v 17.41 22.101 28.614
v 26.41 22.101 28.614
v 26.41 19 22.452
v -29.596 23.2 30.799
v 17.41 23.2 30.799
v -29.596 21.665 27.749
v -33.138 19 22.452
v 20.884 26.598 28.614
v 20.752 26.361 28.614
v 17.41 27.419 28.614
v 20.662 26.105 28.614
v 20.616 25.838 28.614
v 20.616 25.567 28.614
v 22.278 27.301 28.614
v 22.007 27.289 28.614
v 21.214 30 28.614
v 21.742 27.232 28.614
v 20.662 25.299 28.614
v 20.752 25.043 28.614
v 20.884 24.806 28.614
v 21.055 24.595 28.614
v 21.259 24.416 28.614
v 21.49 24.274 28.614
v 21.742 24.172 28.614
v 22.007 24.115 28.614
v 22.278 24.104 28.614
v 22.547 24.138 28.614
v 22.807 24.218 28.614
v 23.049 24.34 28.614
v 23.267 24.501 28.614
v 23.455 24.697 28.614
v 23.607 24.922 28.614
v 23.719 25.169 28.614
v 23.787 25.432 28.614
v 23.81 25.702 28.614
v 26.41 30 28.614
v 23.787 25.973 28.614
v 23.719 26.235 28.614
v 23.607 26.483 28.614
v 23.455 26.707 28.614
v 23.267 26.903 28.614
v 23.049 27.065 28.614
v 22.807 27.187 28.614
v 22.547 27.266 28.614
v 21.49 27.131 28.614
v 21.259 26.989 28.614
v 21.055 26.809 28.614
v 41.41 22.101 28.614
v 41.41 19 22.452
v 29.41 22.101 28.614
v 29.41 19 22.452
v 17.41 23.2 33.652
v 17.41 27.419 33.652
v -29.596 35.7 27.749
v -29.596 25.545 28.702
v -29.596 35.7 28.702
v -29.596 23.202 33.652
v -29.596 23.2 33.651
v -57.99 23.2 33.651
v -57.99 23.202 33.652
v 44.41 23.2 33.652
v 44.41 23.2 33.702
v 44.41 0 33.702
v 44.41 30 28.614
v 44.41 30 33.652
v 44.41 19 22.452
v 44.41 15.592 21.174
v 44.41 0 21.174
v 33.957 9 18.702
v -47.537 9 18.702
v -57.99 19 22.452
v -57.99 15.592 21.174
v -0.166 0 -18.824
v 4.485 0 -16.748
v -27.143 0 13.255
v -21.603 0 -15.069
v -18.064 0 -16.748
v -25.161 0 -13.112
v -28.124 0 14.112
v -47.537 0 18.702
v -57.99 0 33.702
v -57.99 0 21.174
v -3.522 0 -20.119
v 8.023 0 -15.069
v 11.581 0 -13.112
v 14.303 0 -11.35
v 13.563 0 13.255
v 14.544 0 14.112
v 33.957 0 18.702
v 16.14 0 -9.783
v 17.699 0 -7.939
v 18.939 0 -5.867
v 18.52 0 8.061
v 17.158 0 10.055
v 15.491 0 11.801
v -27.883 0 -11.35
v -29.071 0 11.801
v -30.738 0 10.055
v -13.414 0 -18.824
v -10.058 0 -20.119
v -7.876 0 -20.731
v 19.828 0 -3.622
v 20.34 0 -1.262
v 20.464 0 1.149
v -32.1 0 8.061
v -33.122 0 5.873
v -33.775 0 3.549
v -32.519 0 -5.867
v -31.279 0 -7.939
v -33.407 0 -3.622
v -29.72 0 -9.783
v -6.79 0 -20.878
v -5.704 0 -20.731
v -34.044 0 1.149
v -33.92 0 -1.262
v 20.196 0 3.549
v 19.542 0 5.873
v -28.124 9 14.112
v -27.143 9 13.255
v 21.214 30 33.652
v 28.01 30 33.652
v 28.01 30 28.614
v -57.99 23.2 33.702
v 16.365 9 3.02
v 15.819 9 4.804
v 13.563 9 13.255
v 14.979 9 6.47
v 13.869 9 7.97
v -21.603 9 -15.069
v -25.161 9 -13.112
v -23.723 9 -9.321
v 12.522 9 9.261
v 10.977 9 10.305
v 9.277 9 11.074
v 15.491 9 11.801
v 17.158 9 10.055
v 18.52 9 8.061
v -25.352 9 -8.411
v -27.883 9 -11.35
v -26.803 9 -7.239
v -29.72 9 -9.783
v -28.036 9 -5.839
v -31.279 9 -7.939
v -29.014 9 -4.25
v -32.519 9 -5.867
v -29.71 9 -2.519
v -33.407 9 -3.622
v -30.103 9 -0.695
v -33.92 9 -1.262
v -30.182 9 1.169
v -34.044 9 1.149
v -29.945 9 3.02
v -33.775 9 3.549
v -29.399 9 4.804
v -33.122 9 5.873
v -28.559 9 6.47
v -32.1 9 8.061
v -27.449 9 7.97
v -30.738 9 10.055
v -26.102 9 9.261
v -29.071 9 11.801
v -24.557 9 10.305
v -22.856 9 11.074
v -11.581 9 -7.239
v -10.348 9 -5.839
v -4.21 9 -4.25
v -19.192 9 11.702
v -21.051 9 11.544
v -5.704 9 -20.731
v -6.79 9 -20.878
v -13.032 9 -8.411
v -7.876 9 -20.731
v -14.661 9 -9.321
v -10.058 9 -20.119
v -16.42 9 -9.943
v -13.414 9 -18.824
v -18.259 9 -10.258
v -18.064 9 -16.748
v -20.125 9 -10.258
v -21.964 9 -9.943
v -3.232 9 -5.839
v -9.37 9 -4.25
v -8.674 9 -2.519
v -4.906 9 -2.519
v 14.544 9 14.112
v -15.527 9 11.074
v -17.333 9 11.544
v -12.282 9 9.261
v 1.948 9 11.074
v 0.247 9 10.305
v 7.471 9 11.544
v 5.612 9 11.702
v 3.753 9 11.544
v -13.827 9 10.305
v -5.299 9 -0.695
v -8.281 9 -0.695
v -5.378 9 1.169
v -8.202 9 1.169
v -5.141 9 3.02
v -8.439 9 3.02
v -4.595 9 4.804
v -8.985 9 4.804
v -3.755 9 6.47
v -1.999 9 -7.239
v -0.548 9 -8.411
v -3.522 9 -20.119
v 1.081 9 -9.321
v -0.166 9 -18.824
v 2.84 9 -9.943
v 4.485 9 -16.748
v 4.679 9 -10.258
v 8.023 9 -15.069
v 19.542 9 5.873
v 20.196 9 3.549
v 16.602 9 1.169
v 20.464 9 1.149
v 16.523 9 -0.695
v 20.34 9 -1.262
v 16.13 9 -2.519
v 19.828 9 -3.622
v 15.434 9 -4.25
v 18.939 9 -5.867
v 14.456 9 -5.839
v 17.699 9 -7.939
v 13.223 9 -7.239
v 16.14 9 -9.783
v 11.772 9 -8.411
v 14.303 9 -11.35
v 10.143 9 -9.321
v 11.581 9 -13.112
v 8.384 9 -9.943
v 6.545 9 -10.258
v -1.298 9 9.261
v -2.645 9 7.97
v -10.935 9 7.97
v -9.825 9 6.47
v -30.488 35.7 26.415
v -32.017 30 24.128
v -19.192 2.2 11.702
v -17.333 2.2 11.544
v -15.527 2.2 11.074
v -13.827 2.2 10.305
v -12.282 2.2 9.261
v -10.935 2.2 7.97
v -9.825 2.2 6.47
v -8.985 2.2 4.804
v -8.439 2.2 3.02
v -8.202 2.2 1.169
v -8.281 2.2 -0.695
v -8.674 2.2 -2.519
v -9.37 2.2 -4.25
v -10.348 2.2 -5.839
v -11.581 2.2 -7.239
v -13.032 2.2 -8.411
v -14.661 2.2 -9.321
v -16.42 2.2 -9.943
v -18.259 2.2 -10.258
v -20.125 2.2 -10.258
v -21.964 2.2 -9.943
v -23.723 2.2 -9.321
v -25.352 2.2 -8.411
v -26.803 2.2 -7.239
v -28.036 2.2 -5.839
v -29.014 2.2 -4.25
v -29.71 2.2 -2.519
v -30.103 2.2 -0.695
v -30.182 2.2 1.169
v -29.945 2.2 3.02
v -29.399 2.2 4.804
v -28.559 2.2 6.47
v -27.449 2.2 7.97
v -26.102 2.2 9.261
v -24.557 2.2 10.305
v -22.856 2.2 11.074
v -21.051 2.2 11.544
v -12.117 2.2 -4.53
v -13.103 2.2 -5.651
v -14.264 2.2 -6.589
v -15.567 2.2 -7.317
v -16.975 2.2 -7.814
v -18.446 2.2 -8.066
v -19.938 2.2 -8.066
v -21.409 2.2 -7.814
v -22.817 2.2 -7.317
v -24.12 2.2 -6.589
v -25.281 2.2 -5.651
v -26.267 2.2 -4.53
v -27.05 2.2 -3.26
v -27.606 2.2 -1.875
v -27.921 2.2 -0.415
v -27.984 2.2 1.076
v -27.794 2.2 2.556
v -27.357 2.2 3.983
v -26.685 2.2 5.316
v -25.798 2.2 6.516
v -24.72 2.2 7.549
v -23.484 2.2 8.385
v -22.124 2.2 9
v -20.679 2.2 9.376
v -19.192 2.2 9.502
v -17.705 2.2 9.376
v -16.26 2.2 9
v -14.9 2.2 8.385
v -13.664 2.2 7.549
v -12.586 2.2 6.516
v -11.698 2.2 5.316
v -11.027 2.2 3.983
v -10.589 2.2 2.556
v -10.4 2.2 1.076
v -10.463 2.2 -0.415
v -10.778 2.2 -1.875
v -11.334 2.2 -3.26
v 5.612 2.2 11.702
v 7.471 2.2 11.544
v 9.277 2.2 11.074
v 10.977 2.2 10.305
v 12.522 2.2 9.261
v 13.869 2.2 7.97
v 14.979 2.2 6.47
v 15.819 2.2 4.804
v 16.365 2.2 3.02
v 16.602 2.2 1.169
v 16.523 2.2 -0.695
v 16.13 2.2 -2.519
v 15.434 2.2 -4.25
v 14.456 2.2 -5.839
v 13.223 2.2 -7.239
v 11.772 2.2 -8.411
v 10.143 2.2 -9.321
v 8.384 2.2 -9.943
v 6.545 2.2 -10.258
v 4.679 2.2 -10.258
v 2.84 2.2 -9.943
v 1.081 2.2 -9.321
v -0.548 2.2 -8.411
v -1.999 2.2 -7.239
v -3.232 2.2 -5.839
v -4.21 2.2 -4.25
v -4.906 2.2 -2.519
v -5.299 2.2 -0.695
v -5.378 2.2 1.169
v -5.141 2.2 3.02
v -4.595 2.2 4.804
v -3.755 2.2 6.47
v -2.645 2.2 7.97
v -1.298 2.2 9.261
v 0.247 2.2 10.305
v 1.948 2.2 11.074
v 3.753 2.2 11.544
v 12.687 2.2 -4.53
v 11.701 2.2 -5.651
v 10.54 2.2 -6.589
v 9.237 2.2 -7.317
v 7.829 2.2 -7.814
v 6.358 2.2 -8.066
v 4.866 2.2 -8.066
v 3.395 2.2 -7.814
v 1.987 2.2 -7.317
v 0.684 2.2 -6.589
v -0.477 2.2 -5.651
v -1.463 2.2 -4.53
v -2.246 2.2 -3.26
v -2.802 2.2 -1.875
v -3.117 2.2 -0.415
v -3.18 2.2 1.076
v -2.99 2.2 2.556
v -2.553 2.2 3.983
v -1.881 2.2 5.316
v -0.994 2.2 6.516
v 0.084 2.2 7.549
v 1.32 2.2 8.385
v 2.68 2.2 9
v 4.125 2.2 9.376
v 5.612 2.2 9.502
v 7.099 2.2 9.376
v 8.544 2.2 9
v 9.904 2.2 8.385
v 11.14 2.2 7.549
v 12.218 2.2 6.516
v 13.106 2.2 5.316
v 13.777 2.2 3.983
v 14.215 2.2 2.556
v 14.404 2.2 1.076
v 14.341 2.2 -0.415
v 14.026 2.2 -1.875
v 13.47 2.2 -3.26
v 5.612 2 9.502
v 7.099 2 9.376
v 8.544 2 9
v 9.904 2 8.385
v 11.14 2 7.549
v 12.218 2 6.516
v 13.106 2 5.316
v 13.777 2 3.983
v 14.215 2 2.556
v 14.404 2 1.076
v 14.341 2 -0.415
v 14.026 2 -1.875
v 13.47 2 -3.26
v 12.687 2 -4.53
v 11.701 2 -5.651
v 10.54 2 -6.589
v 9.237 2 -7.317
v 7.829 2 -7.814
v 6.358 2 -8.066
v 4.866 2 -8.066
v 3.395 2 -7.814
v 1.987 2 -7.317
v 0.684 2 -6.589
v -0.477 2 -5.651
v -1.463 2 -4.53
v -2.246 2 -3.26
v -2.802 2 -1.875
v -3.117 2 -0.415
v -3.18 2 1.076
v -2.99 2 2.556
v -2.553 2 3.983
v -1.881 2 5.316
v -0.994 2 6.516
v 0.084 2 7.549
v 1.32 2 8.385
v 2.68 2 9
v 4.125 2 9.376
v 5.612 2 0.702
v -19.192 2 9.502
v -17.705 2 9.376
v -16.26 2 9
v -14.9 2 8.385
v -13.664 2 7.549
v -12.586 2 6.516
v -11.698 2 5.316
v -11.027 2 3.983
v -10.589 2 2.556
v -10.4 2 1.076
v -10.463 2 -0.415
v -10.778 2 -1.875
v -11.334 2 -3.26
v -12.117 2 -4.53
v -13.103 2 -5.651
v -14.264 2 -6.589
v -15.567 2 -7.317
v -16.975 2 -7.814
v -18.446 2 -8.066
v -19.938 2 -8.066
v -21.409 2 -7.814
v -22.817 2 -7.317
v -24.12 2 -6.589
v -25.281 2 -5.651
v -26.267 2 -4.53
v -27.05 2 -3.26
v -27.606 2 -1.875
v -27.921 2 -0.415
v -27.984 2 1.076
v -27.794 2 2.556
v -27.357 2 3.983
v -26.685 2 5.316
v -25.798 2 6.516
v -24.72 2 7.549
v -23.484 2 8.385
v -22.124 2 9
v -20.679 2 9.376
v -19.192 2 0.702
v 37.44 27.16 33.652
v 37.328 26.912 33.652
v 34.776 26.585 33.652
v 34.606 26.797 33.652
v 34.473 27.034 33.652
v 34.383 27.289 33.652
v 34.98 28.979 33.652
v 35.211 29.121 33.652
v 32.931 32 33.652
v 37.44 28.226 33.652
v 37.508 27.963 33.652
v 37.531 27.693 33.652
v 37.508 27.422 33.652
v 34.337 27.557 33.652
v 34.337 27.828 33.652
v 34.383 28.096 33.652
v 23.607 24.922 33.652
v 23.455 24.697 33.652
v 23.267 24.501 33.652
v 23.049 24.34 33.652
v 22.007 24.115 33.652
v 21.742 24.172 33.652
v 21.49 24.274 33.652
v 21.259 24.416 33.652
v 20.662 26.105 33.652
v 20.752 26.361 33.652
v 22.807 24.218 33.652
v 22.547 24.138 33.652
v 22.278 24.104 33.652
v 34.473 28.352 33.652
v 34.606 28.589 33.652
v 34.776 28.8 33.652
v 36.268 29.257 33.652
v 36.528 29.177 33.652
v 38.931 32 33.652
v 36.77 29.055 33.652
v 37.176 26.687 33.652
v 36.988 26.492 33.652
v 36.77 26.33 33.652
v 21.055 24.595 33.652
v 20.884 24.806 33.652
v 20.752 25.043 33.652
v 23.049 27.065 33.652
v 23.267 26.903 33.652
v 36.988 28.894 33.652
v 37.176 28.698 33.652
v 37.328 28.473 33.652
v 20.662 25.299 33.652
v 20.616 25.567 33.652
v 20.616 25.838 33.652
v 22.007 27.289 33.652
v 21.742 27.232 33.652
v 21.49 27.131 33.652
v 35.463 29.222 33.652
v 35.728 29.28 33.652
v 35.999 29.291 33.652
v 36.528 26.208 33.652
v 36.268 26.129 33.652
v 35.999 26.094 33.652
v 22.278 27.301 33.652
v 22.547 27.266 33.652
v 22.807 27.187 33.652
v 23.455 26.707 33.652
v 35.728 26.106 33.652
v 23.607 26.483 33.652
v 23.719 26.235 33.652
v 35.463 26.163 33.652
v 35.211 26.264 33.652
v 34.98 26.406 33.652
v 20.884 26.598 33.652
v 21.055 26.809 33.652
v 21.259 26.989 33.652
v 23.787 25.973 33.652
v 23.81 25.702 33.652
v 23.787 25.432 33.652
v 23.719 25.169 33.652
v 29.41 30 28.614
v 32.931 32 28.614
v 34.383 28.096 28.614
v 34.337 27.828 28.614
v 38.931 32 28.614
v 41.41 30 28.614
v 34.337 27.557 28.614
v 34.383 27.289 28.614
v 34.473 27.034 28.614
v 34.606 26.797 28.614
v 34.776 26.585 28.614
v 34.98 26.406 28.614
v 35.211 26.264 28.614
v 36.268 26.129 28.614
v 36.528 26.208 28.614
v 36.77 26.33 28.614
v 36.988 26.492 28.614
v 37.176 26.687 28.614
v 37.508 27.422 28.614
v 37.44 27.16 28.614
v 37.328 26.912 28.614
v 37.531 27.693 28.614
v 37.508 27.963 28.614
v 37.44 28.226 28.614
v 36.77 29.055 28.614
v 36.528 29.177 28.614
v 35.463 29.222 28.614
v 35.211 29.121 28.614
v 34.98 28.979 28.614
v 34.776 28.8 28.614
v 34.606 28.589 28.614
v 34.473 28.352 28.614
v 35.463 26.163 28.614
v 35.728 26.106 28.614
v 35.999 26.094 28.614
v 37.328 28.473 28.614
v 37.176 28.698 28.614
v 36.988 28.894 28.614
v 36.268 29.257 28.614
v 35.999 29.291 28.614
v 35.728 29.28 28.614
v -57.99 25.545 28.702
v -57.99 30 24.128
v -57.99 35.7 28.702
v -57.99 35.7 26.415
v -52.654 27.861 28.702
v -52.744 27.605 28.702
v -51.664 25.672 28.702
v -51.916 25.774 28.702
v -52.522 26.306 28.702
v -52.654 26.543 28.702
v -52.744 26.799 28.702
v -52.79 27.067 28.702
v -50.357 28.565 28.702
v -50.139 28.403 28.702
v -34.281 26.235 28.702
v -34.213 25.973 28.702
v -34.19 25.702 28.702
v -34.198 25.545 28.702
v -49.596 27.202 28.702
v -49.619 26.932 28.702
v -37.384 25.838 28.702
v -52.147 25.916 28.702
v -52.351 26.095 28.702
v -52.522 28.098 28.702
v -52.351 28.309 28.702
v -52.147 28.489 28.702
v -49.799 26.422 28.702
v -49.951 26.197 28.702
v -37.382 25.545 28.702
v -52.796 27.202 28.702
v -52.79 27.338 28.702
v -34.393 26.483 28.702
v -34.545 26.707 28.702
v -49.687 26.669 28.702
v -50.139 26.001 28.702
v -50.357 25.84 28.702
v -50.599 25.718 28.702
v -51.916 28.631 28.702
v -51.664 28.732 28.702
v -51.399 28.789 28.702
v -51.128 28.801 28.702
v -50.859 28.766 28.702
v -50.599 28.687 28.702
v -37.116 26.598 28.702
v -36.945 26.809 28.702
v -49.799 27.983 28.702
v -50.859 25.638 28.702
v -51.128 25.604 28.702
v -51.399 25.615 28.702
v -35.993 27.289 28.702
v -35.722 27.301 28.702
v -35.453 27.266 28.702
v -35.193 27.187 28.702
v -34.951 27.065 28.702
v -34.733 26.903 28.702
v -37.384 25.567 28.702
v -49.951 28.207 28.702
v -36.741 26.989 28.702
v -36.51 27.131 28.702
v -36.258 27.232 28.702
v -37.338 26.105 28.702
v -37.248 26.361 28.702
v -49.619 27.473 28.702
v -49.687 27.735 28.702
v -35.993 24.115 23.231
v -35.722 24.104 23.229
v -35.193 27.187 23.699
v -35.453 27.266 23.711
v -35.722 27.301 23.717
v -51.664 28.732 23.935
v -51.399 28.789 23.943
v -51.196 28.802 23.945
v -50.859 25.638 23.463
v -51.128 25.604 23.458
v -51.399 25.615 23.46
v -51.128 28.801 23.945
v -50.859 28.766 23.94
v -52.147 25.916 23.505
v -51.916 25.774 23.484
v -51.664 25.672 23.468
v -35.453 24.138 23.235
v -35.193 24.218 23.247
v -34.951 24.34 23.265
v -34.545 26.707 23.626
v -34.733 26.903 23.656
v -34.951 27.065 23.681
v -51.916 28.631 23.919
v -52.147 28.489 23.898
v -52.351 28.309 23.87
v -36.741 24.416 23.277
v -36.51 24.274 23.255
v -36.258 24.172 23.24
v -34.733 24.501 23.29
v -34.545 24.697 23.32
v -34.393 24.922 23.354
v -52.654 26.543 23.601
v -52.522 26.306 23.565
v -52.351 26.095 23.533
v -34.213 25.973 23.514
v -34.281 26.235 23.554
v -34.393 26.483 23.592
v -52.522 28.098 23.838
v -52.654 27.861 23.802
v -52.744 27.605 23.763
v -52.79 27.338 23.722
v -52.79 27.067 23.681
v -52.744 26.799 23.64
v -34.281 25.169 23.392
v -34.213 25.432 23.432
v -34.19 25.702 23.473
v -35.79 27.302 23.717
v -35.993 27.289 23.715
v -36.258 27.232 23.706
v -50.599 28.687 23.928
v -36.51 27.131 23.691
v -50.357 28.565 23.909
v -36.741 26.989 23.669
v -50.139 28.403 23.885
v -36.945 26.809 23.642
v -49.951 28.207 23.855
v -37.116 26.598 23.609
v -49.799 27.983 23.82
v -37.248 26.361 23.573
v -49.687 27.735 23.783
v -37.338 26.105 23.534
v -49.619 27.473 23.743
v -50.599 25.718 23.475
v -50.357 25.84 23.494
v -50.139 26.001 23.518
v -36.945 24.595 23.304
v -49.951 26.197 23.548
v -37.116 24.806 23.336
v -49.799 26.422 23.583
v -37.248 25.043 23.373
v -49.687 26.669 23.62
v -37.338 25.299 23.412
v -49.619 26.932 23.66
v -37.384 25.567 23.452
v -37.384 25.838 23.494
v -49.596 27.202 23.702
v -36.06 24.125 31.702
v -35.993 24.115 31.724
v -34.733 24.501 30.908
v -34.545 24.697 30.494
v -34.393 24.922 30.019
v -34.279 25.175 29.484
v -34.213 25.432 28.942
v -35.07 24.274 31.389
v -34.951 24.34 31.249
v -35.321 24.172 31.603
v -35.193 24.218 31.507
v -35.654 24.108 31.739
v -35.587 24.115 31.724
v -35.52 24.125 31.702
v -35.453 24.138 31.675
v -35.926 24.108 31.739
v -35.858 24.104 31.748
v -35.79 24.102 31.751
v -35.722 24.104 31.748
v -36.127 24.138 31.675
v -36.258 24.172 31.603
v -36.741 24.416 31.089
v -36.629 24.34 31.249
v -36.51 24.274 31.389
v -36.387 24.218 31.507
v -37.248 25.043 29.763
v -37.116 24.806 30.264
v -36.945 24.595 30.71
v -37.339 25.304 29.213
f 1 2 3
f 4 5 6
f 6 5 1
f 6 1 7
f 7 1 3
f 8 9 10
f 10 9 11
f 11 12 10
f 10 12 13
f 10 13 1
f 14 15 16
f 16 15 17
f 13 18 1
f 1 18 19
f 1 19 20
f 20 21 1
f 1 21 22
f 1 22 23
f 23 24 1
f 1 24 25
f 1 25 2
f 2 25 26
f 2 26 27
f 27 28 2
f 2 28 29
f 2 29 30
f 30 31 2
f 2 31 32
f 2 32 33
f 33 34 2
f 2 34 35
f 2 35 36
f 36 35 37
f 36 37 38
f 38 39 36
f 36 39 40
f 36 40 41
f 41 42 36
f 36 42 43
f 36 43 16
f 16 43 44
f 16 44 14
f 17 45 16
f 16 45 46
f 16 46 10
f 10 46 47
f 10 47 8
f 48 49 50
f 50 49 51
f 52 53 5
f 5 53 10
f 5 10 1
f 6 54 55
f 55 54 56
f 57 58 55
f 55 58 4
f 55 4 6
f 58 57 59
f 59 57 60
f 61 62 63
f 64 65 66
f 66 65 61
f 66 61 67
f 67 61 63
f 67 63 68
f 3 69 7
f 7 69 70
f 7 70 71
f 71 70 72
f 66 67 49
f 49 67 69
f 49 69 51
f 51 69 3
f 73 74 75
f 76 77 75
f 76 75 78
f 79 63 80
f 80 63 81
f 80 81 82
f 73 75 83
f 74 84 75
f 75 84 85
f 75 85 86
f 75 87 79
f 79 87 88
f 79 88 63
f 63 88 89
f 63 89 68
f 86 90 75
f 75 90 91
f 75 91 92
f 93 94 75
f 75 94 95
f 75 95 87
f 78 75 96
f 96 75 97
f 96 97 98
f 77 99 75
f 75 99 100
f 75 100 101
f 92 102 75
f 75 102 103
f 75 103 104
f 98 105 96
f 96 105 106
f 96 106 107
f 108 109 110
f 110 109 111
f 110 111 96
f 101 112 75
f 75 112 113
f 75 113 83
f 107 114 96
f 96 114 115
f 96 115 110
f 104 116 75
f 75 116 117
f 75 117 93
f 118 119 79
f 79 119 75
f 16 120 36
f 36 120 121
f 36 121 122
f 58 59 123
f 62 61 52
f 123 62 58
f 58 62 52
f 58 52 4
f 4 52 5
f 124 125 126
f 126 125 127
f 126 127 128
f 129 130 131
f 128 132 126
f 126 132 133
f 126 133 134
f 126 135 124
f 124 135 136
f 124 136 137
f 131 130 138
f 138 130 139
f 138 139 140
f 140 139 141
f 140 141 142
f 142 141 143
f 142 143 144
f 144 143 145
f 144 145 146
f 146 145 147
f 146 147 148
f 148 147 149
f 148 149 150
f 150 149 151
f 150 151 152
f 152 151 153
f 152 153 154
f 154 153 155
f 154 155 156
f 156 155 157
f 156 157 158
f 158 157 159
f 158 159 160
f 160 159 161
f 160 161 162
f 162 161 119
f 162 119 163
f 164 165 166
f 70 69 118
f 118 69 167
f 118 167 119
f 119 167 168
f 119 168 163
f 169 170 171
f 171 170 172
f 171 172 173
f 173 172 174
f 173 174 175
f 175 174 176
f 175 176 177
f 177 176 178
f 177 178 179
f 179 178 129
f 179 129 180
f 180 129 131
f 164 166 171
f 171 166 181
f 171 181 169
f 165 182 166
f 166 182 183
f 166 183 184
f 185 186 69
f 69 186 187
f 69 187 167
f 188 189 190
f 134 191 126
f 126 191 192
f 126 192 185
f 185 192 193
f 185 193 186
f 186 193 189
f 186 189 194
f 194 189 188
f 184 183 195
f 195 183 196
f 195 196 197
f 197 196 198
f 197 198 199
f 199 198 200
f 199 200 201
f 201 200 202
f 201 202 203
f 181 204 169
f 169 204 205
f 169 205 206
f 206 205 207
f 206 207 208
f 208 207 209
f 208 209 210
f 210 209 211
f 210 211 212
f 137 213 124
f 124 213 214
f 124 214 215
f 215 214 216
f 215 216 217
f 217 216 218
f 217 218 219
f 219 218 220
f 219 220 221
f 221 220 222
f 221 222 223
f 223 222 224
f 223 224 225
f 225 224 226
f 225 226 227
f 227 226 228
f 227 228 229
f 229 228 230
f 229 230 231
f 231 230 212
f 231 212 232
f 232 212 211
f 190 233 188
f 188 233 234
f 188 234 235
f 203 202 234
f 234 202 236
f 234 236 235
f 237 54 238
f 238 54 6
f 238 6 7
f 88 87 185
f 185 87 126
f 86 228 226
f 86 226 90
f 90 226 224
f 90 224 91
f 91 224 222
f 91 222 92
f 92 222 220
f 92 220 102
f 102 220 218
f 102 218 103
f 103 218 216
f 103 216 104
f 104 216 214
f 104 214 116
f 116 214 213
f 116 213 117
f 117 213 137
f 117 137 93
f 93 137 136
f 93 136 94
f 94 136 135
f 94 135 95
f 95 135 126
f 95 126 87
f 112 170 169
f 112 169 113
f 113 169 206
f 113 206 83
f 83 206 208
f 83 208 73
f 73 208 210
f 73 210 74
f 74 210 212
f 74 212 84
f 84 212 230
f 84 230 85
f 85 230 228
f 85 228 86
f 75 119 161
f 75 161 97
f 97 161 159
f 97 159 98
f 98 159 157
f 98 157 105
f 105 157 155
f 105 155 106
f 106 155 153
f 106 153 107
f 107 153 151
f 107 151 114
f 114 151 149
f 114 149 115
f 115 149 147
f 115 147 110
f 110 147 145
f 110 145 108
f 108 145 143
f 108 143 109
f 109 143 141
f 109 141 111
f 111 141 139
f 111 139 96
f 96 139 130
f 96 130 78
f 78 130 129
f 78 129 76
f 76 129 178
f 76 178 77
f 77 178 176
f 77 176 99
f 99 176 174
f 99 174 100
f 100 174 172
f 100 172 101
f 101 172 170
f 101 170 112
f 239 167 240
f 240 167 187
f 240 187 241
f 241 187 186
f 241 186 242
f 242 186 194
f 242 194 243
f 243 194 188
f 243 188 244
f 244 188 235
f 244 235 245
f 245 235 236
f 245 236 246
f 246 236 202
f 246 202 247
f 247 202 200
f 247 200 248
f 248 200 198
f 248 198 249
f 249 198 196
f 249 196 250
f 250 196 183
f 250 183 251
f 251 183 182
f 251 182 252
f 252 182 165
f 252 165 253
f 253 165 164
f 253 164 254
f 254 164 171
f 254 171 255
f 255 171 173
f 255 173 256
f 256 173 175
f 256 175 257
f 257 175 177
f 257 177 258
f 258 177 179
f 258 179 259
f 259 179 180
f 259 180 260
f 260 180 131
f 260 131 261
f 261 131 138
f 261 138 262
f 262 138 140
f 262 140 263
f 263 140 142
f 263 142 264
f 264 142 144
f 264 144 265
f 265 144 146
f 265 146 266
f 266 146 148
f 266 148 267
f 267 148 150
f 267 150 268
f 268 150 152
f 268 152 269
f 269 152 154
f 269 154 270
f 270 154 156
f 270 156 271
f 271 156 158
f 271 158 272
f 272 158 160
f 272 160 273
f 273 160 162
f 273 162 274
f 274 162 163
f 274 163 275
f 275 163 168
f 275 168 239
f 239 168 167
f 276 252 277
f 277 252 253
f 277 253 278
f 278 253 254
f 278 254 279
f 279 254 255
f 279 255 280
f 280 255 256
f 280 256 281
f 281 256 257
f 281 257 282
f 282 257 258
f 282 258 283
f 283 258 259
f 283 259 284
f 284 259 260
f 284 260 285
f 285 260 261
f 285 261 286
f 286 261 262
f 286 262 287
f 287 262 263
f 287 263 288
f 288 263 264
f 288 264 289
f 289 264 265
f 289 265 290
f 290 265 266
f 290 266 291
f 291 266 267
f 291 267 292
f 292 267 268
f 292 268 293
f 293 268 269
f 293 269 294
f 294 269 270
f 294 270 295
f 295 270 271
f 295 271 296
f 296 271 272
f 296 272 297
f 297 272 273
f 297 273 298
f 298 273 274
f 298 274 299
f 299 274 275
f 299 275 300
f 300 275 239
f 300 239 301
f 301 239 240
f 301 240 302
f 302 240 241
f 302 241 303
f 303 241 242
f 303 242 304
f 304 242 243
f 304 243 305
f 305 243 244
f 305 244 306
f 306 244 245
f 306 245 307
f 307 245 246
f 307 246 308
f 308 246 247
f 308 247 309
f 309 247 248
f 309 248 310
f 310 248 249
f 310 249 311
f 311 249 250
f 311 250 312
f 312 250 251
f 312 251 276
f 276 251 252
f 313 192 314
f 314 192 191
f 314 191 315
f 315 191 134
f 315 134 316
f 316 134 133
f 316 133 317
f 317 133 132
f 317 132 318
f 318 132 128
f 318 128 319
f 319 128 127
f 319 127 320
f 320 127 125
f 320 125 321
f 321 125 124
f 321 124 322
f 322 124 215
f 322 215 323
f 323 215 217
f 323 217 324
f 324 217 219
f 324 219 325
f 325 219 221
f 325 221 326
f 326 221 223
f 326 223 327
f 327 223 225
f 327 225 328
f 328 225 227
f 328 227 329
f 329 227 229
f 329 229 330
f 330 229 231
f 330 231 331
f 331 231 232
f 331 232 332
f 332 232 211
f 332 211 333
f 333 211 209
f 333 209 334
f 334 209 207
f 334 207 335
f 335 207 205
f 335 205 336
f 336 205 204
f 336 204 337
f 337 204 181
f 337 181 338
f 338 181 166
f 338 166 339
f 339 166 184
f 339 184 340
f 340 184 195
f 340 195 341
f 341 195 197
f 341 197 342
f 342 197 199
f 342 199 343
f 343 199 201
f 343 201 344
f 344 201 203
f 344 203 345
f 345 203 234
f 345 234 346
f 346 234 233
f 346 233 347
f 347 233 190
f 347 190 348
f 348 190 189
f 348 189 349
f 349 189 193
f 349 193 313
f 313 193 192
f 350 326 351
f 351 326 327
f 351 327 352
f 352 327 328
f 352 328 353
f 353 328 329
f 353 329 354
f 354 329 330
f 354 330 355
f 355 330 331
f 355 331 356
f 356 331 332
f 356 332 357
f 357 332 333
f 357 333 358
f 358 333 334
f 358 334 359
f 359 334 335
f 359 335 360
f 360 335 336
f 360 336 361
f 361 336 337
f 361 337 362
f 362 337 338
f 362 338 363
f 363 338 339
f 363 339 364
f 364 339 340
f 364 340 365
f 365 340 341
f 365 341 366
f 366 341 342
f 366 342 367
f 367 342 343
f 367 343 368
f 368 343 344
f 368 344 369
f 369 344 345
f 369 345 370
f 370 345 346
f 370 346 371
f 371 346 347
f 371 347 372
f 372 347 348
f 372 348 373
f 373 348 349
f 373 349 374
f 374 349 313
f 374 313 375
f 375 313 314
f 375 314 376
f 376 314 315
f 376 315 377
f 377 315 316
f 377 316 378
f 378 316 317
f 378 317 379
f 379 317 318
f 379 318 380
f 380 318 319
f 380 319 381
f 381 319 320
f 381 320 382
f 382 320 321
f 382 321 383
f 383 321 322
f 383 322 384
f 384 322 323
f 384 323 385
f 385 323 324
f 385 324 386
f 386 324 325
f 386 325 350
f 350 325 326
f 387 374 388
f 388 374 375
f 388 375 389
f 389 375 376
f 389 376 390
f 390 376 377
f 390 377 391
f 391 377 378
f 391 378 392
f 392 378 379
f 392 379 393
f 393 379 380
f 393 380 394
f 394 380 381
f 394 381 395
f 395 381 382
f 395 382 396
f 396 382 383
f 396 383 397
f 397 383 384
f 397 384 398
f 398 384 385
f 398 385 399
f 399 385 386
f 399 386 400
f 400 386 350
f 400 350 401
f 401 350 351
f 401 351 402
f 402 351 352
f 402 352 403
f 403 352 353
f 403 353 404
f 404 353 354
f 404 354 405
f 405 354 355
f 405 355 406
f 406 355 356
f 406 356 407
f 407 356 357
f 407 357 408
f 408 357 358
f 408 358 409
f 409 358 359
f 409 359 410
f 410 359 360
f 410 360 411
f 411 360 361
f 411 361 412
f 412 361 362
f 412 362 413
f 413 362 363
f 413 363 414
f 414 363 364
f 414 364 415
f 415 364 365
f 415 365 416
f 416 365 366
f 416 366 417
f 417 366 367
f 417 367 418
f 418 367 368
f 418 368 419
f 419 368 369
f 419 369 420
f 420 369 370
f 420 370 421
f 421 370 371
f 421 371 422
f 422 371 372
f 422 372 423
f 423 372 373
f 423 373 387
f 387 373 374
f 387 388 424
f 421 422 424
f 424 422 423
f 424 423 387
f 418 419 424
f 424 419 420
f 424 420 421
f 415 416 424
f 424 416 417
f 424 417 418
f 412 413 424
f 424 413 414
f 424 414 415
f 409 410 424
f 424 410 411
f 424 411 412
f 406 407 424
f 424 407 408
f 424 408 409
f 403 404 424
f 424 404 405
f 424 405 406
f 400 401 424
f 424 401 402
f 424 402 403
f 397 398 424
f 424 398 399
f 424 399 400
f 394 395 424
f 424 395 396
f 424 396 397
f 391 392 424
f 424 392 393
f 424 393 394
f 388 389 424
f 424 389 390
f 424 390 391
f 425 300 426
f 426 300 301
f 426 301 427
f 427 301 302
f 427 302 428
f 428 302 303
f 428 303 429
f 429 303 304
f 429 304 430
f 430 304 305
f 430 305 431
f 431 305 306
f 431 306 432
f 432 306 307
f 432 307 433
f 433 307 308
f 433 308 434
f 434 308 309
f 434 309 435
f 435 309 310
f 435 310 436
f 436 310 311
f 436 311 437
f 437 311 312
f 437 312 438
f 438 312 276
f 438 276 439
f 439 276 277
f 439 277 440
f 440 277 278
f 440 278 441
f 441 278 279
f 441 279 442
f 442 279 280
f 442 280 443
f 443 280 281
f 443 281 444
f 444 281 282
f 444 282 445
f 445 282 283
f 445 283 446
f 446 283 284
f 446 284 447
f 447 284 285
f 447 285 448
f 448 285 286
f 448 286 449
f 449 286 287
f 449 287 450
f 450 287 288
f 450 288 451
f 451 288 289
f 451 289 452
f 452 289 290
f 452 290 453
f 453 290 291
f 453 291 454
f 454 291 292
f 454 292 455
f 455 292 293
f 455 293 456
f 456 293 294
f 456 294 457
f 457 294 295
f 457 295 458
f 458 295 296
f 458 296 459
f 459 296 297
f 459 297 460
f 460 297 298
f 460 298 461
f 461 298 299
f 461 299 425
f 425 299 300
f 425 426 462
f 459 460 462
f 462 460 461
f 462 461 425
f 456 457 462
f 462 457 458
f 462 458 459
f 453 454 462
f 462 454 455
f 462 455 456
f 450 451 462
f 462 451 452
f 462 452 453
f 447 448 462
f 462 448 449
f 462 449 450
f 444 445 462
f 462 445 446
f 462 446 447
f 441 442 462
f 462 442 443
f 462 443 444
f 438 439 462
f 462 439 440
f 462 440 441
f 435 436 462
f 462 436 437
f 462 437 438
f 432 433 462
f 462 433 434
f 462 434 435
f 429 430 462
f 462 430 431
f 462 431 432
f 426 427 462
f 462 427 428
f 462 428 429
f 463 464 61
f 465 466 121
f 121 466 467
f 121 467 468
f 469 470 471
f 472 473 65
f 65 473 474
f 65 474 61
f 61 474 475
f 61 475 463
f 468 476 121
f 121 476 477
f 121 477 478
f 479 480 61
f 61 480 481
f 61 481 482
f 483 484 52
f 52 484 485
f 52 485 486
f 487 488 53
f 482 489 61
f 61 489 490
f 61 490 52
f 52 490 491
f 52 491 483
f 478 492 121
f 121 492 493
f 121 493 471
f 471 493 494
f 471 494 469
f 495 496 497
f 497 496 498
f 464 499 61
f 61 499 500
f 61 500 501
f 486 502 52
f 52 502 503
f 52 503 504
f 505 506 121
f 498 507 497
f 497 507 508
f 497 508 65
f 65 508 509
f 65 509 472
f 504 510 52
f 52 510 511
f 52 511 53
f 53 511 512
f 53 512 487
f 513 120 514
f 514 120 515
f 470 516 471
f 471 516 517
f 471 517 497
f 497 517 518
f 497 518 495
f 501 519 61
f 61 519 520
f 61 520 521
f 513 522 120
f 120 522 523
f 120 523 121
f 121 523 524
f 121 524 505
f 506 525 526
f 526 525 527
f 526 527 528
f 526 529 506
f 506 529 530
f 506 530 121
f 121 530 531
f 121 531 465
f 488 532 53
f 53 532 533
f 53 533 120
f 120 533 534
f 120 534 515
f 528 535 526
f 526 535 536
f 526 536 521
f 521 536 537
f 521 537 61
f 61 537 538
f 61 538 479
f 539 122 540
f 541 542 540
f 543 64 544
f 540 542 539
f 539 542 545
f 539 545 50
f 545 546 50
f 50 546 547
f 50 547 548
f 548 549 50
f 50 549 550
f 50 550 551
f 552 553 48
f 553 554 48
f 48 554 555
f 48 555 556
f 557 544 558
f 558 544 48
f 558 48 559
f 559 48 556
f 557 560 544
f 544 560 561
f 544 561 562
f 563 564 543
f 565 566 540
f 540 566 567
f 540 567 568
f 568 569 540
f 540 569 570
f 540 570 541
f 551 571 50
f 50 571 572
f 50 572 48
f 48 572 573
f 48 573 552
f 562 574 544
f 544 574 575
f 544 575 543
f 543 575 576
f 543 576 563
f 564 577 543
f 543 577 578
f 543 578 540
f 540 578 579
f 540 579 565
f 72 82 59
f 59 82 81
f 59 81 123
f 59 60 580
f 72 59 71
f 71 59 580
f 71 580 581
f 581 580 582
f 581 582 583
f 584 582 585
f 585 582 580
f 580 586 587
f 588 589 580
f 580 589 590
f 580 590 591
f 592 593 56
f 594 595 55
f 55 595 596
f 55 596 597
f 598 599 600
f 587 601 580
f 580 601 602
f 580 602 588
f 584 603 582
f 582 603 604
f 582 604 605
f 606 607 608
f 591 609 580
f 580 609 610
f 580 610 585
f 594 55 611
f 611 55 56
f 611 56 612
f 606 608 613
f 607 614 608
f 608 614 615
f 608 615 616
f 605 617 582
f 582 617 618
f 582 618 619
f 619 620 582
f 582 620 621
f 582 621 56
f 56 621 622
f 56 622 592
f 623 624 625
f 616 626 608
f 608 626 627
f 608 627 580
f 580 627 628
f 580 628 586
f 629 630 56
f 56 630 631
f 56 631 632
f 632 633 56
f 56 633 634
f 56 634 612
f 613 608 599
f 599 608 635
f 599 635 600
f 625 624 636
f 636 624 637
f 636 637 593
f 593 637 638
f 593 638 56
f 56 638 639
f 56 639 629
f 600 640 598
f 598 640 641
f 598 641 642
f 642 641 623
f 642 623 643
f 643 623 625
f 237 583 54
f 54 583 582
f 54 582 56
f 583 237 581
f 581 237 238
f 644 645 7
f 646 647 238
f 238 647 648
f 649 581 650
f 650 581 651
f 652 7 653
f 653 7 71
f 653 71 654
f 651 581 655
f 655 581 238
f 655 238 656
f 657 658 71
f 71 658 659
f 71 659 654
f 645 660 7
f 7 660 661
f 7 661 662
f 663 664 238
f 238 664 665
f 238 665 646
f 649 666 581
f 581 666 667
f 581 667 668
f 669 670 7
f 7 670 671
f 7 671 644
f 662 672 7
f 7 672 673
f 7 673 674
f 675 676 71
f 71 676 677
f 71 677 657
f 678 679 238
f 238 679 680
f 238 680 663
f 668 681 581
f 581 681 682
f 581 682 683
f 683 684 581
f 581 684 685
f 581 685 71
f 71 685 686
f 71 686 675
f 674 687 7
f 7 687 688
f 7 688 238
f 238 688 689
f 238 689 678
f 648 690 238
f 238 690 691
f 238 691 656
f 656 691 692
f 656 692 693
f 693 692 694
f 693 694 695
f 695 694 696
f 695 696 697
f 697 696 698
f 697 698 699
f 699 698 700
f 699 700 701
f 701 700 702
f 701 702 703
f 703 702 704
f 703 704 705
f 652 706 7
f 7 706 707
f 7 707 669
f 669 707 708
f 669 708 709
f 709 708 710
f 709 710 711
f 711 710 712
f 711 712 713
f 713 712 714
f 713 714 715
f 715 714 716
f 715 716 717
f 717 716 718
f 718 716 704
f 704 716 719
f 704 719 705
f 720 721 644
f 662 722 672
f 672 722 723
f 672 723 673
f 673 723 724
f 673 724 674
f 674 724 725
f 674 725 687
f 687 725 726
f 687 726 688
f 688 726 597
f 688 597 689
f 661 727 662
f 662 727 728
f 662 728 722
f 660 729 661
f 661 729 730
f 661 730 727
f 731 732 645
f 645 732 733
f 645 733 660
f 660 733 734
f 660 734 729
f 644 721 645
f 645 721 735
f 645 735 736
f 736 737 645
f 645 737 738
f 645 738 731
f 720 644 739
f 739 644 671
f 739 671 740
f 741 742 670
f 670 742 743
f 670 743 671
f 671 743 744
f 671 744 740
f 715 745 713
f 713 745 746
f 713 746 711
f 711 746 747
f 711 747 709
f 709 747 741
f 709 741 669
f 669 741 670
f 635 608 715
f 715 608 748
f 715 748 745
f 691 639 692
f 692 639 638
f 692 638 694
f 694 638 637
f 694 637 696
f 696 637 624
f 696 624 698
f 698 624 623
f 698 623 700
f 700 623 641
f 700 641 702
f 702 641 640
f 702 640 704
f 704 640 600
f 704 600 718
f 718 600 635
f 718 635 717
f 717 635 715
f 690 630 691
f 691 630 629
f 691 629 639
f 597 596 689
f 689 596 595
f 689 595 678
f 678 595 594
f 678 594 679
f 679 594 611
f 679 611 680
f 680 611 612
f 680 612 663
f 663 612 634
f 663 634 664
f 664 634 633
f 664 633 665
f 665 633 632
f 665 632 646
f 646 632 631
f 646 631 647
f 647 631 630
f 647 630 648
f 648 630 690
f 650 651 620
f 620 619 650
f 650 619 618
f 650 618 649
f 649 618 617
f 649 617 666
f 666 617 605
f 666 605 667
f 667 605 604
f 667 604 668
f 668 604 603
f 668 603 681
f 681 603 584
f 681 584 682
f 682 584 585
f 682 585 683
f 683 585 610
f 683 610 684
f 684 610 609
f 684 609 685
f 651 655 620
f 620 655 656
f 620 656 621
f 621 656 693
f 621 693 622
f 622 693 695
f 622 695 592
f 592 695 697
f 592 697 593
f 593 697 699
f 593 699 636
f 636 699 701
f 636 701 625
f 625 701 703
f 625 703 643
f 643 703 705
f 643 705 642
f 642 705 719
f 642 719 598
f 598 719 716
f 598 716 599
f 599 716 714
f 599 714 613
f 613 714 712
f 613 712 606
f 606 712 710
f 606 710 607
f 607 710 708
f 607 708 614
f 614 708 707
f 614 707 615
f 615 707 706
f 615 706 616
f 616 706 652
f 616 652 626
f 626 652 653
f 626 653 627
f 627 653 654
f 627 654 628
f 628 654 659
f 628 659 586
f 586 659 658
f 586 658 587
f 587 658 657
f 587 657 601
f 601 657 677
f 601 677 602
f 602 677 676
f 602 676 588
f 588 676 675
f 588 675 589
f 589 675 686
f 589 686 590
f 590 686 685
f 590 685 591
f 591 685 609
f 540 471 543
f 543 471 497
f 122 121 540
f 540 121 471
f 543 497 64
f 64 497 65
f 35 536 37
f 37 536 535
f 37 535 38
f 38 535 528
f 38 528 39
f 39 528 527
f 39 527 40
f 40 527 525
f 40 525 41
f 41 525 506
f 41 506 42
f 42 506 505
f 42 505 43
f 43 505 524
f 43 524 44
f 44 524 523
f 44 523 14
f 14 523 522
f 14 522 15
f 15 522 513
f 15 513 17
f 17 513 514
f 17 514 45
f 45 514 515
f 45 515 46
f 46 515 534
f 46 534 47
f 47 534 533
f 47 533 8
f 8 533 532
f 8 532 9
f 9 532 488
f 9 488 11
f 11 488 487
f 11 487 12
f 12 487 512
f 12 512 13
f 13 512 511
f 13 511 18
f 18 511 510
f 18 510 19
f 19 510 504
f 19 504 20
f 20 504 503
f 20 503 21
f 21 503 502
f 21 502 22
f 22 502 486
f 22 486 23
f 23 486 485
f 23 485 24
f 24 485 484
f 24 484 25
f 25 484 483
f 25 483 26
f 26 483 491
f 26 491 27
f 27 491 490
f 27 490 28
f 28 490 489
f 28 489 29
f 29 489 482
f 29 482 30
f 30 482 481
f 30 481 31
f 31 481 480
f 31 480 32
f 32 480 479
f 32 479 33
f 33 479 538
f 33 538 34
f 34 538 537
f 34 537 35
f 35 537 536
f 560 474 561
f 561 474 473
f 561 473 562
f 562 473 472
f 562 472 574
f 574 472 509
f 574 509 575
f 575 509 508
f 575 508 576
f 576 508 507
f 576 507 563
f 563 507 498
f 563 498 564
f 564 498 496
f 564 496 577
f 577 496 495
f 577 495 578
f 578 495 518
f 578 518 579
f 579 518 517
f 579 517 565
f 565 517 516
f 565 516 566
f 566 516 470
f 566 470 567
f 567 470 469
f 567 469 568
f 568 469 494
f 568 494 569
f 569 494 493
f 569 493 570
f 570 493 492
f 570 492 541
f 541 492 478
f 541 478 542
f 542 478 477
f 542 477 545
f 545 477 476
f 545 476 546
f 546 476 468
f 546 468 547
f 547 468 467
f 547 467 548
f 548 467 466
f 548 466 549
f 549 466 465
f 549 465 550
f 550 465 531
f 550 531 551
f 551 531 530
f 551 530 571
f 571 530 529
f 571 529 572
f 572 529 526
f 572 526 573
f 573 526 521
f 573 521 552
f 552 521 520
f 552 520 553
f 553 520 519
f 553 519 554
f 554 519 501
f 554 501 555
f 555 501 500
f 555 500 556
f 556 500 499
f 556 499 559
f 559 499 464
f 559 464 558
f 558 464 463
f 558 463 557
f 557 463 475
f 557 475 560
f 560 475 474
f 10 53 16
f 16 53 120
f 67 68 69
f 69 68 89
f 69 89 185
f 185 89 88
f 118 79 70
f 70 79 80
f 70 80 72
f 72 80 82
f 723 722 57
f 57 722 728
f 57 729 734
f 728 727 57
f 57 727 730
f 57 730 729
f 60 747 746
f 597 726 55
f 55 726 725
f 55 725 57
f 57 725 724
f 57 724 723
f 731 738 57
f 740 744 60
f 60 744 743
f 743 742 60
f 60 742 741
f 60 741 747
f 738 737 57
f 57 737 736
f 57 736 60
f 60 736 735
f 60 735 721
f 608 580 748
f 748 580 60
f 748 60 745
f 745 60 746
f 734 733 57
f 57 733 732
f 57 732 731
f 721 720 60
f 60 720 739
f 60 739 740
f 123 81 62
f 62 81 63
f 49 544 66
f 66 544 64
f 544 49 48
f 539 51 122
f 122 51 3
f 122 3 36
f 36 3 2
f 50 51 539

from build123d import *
from build123d.topology import SkipClean

# Parameters (mm, degrees)
SKETCH1_W                = 100
SKETCH1_H                = 50
BOSS_EXTRUDE1_DEPTH      = 9
CUT_EXTRUDE2_DEPTH       = 10
SKETCH6_W                = 120
SKETCH6_H                = 9
BOSS_EXTRUDE2_DEPTH      = 10
SKETCH7_R                = 11.000000016
SKETCH7_R_2              = 10.999999993
CUT_EXTRUDE3_DEPTH       = 6.8
SKETCH8_R                = 8.8
CUT_EXTRUDE4_DEPTH       = 0.2
BOSS_EXTRUDE3_DEPTH      = 21
CUT_EXTRUDE6_DEPTH       = 13
CUT_EXTRUDE7_DEPTH       = 13
LPATTERN1_COUNT          = 2
LPATTERN1_PITCH          = 17
CUT_EXTRUDE8_DEPTH       = 123
SKETCH15_W               = 10
SKETCH15_H               = 7.899400514
CUT_EXTRUDE9_DEPTH       = 5
CUT_EXTRUDE10_DEPTH      = 19
CUT_EXTRUDE10_DEPTH_BACK = 11
MOVE_FACE1_BY            = 5
SKETCH18_W               = 8.8
SKETCH18_H               = 9.911873884
SKETCH18_H_2             = 10
CUT_EXTRUDE11_DEPTH      = 11
SKETCH19_R               = 2.17746248
CUT_EXTRUDE12_DEPTH      = 9
BOSS_EXTRUDE6_DEPTH      = 26.7
CUT_EXTRUDE13_DEPTH      = 31.7
BOSS_EXTRUDE7_REACH      = 106.617
BOSS_EXTRUDE8_REACH      = 115.546
BOSS_EXTRUDE9_REACH      = 115.546
BOSS_EXTRUDE10_DEPTH     = 14.7
BOSS_EXTRUDE11_DEPTH     = 14.7
CUT_EXTRUDE14_DEPTH      = 85.235044064
CUT_EXTRUDE14_DEPTH_BACK = 85.235044064
SKETCH29_R               = 1.599999991
SKETCH29_R_2             = 1.6
MOVE_START               = 27.410060373
MOVE_FACE2_DEPTH         = 7
SKETCH31_W               = 16.4
SKETCH31_H               = 5.038125723
BOSS_EXTRUDE12_DEPTH     = 2
CUT_EXTRUDE16_DEPTH      = 6.05
SKETCH30_R               = 1.6
SKETCH30_R_2             = 1.599999991
CUT_EXTRUDE17_DEPTH      = 6
CUT_EXTRUDE18_DEPTH      = 6
BOSS_EXTRUDE14_DEPTH     = 9
CUT_EXTRUDE19_DEPTH      = 19
BOSS_EXTRUDE15_REACH     = 115.546
SKETCH39_W               = 102.4
SKETCH39_H               = 19
BOSS_EXTRUDE16_DEPTH     = 5
MOVE_START_2             = 27.202290076
MOVE_FACE3_DEPTH         = 1.5
MOVE_START_3             = -57.989939627
MOVE_FACE4_DEPTH         = 102.4
CUT_EXTRUDE21_START      = -5
SKETCH40_R               = 1.6
CUT_EXTRUDE21_DEPTH      = 5
BOSS_EXTRUDE17_DEPTH     = 3
LPATTERN2_COUNT          = 2
LPATTERN2_PITCH          = 15


with BuildPart() as part:
    # Sketch1 → Boss-Extrude1 (new body)
    with BuildSketch(Plane(origin=(0, 0, 0), x_dir=(1, 0, 0), z_dir=(0, 1, 0))):
        with Locations((-4.071246819, 6.297709924)):
            Rectangle(SKETCH1_W, SKETCH1_H)
    extrude(amount=BOSS_EXTRUDE1_DEPTH)

    # Sketch3 → Cut-Extrude2 (cut)
    with BuildSketch(Plane(origin=(0, 9, 0), x_dir=(1, 0, 0), z_dir=(0, 1, 0))):
        with BuildLine():
            Line((13.562694185, -13.254917088), (19.796593595, -18.702290076))
            Line((19.796593595, -18.702290076), (45.928753181, -18.702290076))
            Line((45.928753181, -18.702290076), (45.928753181, 31.297709924))
            Line((45.928753181, 31.297709924), (-6.789939627, 31.297709924))
            Line((-6.789939627, 31.297709924), (-6.789939627, 20.878144865))
            add(Edge.make_bspline(
                [(-6.789939627, 20.878144865), (-4.152217911, 20.754884744), (2.59018392, 17.585299423), (7.958165168, 15.205908702), (11.899983065, 13.0642773), (14.302849715, 11.349730645)],
                knots=[0, 0, 0, 0, 0.385334853, 0.485334853, 1, 1, 1, 1], degree=3))
            ThreePointArc((14.302849715, 11.349730645), (20.46404385, -1.149066549), (13.562694185, -13.254917088))
        make_face()
    cut_extrude2 = extrude(amount=-CUT_EXTRUDE2_DEPTH, mode=Mode.SUBTRACT)

    # Mirror1: Cut-Extrude2 across plane
    add(cut_extrude2.mirror(Plane(origin=(-6.789939627, -1, -31.297709924), x_dir=(0, 0, 1), z_dir=(-1, 0, 0))), mode=Mode.SUBTRACT)

    # Sketch6 → Boss-Extrude2 (add)
    with BuildSketch(Plane.XY.offset(18.702290076)):
        with Locations((-6.789939627, 4.5)):
            Rectangle(SKETCH6_W, SKETCH6_H)
    extrude(amount=BOSS_EXTRUDE2_DEPTH)

    # Sketch7 → Cut-Extrude3 (cut)
    with BuildSketch(Plane(origin=(0, 9, 0), x_dir=(1, 0, 0), z_dir=(0, 1, 0))):
        with Locations(Location((5.612060368, -0.702290075, 0), (0, 0, 270))):
            Circle(SKETCH7_R)
        with Locations(Location((-19.191939622, -0.702289879, 0), (0, 0, 270))):
            Circle(SKETCH7_R_2)
    extrude(amount=-CUT_EXTRUDE3_DEPTH, mode=Mode.SUBTRACT)

    # Sketch8 → Cut-Extrude4 (cut)
    with BuildSketch(Plane(origin=(0, 2.2, 0), x_dir=(1, 0, 0), z_dir=(0, 1, 0))):
        with Locations(Location((5.612060368, -0.702290075, 0), (0, 0, 270))):
            Circle(SKETCH8_R)
        with Locations(Location((-19.191939622, -0.702289879, 0), (0, 0, 270))):
            Circle(SKETCH8_R)
    extrude(amount=-CUT_EXTRUDE4_DEPTH, mode=Mode.SUBTRACT)

    # Sketch9 → Boss-Extrude3 (add)
    with BuildSketch(Plane(origin=(0, 9, 0), x_dir=(1, 0, 0), z_dir=(0, 1, 0))):
        Polygon((27.410060373, -18.702290076), (17.410060373, -18.702290076), (17.410060373, -28.702290076), (17.410060373, -33.652289683), (27.410060373, -33.652289683), (27.410060373, -28.702290076), align=None)
    boss_extrude3 = extrude(amount=BOSS_EXTRUDE3_DEPTH)

    # Sketch10 → Cut-Extrude6 (cut)
    with BuildSketch(Plane(origin=(27.410060373, 0, 0), x_dir=(0, 0, -1), z_dir=(1, 0, 0))):
        Polygon((-28.702290076, 9), (-33.652289683, 22.202285695), (-33.652289683, 9), align=None)
    cut_extrude6 = extrude(amount=-CUT_EXTRUDE6_DEPTH, mode=Mode.SUBTRACT)

    # Sketch11 → Cut-Extrude7 (cut)
    with BuildSketch(Plane(origin=(27.410060373, 0, 0), x_dir=(0, 0, -1), z_dir=(1, 0, 0))):
        Polygon((-18.702290076, 9), (-18.702290076, 22.202285694), (-18.702290076, 30), (-23.61416396, 30), (-23.61416396, 22.100599486), align=None)
    cut_extrude7 = extrude(amount=-CUT_EXTRUDE7_DEPTH, mode=Mode.SUBTRACT)

    # LPattern1: Boss-Extrude3, Cut-Extrude6, Cut-Extrude7 ×2
    with Locations(*[(i * LPATTERN1_PITCH, 0, 0) for i in range(1, LPATTERN1_COUNT)]):
        add(boss_extrude3)
        add(cut_extrude6, mode=Mode.SUBTRACT)
        add(cut_extrude7, mode=Mode.SUBTRACT)

    # Sketch13 → Cut-Extrude8 (cut)
    with BuildSketch(Plane.ZY.offset(66.789939627)):
        Polygon((28.702290076, 9), (27.202290076, 0), (28.702290076, 0), align=None)
    extrude(amount=-CUT_EXTRUDE8_DEPTH, mode=Mode.SUBTRACT)

    # Sketch15 → Cut-Extrude9 (cut)
    with BuildSketch(Plane(origin=(0, 0, 23.61416396), x_dir=(-1, 0, 0), z_dir=(0, 0, -1))):
        with Locations((-22.410060373, 26.050299743)):
            Rectangle(SKETCH15_W, SKETCH15_H)
    extrude(amount=-CUT_EXTRUDE9_DEPTH, mode=Mode.SUBTRACT)

    # Sketch17 → Cut-Extrude10 (cut, two sides: drawn at the far end of the back side and taken through both)
    with BuildSketch(Plane(origin=(27.410060373, 0, 0), x_dir=(0, 0, -1), z_dir=(1, 0, 0)).offset(-CUT_EXTRUDE10_DEPTH_BACK)):
        Polygon((-22.451640546, 19), (-28.61416396, 22.100599486), (-23.61416396, 22.100599486), align=None)
    extrude(amount=CUT_EXTRUDE10_DEPTH + CUT_EXTRUDE10_DEPTH_BACK, mode=Mode.SUBTRACT)

    # Move Face1: a face moved inward by 5.0
    extrude(part.faces().sort_by_distance((39.410060373, 26.050299743, 23.61416396))[0], amount=MOVE_FACE1_BY, dir=(0, 0, 1), mode=Mode.SUBTRACT)

    # Sketch18 → Cut-Extrude11 (cut)
    with BuildSketch(Plane(origin=(0, 9, 0), x_dir=(1, 0, 0), z_dir=(0, 1, 0))):
        with Locations((48.810060373, -23.658227018)):
            Rectangle(SKETCH18_W, SKETCH18_H)
        with Locations((-62.389939627, -23.702290076)):
            Rectangle(SKETCH18_W, SKETCH18_H_2)
    extrude(amount=-CUT_EXTRUDE11_DEPTH, mode=Mode.SUBTRACT)

    # Sketch19 → Cut-Extrude12 (cut)
    with BuildSketch(Plane(origin=(44.410060373, 0, 0), x_dir=(0, 0, -1), z_dir=(1, 0, 0))):
        with Locations((-27.846220708, 9.974076114)):
            Circle(SKETCH19_R)
    extrude(amount=CUT_EXTRUDE12_DEPTH, mode=Mode.SUBTRACT)

    # Sketch20 → Boss-Extrude6 (add)
    with BuildSketch(Plane(origin=(0, 9, 0), x_dir=(1, 0, 0), z_dir=(0, 1, 0))):
        Polygon((-57.989939627, -24.127818916), (-57.989939627, -28.702290076), (-29.595939593, -28.702290076), (-29.595939593, -27.749073121), (-32.01694624, -24.127818916), (-33.376472849, -24.127818916), align=None)
    extrude(amount=BOSS_EXTRUDE6_DEPTH)

    # Sketch21 → Cut-Extrude13 (cut)
    with BuildSketch(Plane.ZY.offset(57.989939627)):
        Polygon((26.415054496, 35.7), (24.127818916, 30), (24.127818916, 35.7), align=None)
    extrude(amount=-CUT_EXTRUDE13_DEPTH, mode=Mode.SUBTRACT)

    # Boss-Extrude7: up to this face of the body (flat: up to its plane)
    boss_extrude7_end = Plane(part.part.faces().sort_by_distance((-57.989939627, 14.553310719, 25.176691805))[0])
    # Sketch14 → Boss-Extrude7 (add, up to the picked face)
    with BuildSketch(Plane.ZY.offset(-34.410060373), mode=Mode.PRIVATE) as boss_extrude7_sk1:
        Polygon((18.702290076, 9), (22.451640546, 19), (28.702290076, 19), (28.702290076, 9), align=None)
    boss_extrude7_tool1 = split(extrude(boss_extrude7_sk1.sketch, amount=BOSS_EXTRUDE7_REACH, mode=Mode.PRIVATE), bisect_by=boss_extrude7_end, keep=Keep.BOTH, mode=Mode.PRIVATE)
    add(boss_extrude7_tool1.solids().sort_by(Axis((34.41006, 13.615467, 24.56754), (-1, 0, 0)))[0])

    # Boss-Extrude8: up to this plane
    boss_extrude8_end = Plane(origin=(-32.01694624, 35.7, 24.127818916), z_dir=(-0.8313251545497, 0, 0.5557863685022487))
    # Sketch23 → Boss-Extrude8 (add, up to the surface)
    with BuildSketch(Plane.ZY.offset(57.989939627), mode=Mode.PRIVATE) as boss_extrude8_sk1:
        Polygon((24.127818916, 30), (22.451640546, 19), (24.127818916, 19), align=None)
    boss_extrude8_tool1 = split(extrude(boss_extrude8_sk1.sketch, amount=-BOSS_EXTRUDE8_REACH, mode=Mode.PRIVATE), bisect_by=boss_extrude8_end, keep=Keep.BOTH, mode=Mode.PRIVATE)
    add(boss_extrude8_tool1.solids().sort_by_distance((-57.98994, 22.666667, 23.569093))[0])

    # Boss-Extrude9: up to this face of the body (flat: up to its plane)
    boss_extrude9_end = Plane(part.part.faces().sort_by_distance((17.410060373, 22.058034461, 30.278583338))[0])
    # Sketch24 → Boss-Extrude9 (add, up to the picked face)
    with BuildSketch(Plane(origin=(44.410060373, 0, 0), x_dir=(0, 0, -1), z_dir=(1, 0, 0)), mode=Mode.PRIVATE) as boss_extrude9_sk1:
        Polygon((-27.202290076, 0), (-33.652289683, 22.202285695), (-28.702290076, 9), align=None)
    boss_extrude9_tool1 = split(extrude(boss_extrude9_sk1.sketch, amount=-BOSS_EXTRUDE9_REACH, mode=Mode.PRIVATE), bisect_by=boss_extrude9_end, keep=Keep.BOTH, mode=Mode.PRIVATE)
    add(boss_extrude9_tool1.solids().sort_by(Axis((44.41006, 10.400762, 29.85229), (-1, 0, 0)))[0])

    # Sketch25 → Boss-Extrude10 (add)
    with BuildSketch(Plane(origin=(27.410060373, 0, 0), x_dir=(0, 0, -1), z_dir=(1, 0, 0))):
        Polygon((-28.702290076, 19), (-33.652289683, 22.202285695), (-28.702290076, 9), align=None)
    extrude(amount=BOSS_EXTRUDE10_DEPTH)

    # Sketch26 → Boss-Extrude11 (add)
    with BuildSketch(Plane(origin=(27.410060373, 0, 0), x_dir=(0, 0, -1), z_dir=(1, 0, 0))):
        Polygon((-28.702290076, 19), (-28.652289683, 22.202285695), (-33.652289683, 22.202285695), align=None)
    extrude(amount=BOSS_EXTRUDE11_DEPTH)

    # Sketch29 → Cut-Extrude14 (cut, two sides: drawn at the far end of the back side and taken through both)
    with BuildSketch(Plane.XY.offset(28.702290076).offset(-CUT_EXTRUDE14_DEPTH_BACK)):
        with Locations(Location((-51.195939153, 27.20228574, 0), (0, 0, 90))):
            Circle(SKETCH29_R)
        with Locations(Location((-35.789940507, 25.702285731, 0), (0, 0, 90))):
            Circle(SKETCH29_R_2)
    extrude(amount=CUT_EXTRUDE14_DEPTH + CUT_EXTRUDE14_DEPTH_BACK, mode=Mode.SUBTRACT)

    # Move Face2: read off the stored shape, not the designer's step
    # Move Face2 outline → Move Face2 (add)
    with BuildSketch(Plane.YZ.offset(MOVE_START)):
        Polygon((30, 33.652289683), (22.202285695, 33.652289683), (22.202285695, 28.652289683), (19, 28.702290076), (19, 22.451640546), (22.100599486, 28.61416396), (30, 28.61416396), align=None)
    extrude(amount=MOVE_FACE2_DEPTH)

    # Sketch31 → Boss-Extrude12 (add)
    with BuildSketch(Plane(origin=(0, 30, 0), x_dir=(1, 0, 0), z_dir=(0, 1, 0))):
        with Locations((36.210060373, -31.133226822)):
            Rectangle(SKETCH31_W, SKETCH31_H)
    extrude(amount=BOSS_EXTRUDE12_DEPTH)

    # Sketch32 → Cut-Extrude16 (cut)
    with BuildSketch(Plane(origin=(0, 0, 28.61416396), x_dir=(-1, 0, 0), z_dir=(0, 0, -1))):
        Polygon((-44.410060373, 30), (-44.410060373, 32), (-38.931179059, 32), align=None)
        Polygon((-28.010060373, 30), (-32.931179059, 32), (-28.010060373, 32), align=None)
    extrude(amount=-CUT_EXTRUDE16_DEPTH, mode=Mode.SUBTRACT)

    # Sketch30 → Cut-Extrude17 (cut)
    with BuildSketch(Plane.XY.offset(33.652289683)):
        with Locations((35.931179059, 27.692596899)):
            Circle(SKETCH30_R)
        with Locations((22.210059502, 25.702285697)):
            Circle(SKETCH30_R_2)
    extrude(amount=-CUT_EXTRUDE17_DEPTH, mode=Mode.SUBTRACT)

    # Sketch33 → Cut-Extrude18 (cut)
    with BuildSketch(Plane(origin=(0, 0, 28.61416396), x_dir=(-1, 0, 0), z_dir=(0, 0, -1))):
        Polygon((-17.410060373, 27.419135074), (-21.213644003, 30), (-17.410060373, 30), align=None)
    extrude(amount=-CUT_EXTRUDE18_DEPTH, mode=Mode.SUBTRACT)

    # Sketch35 → Boss-Extrude14 (add)
    with BuildSketch(Plane.XZ):
        Polygon((34.074428928, 18.72995129), (14.543666487, 14.11212085), (18.502510714, 19.900348682), align=None)
    boss_extrude14 = extrude(amount=-BOSS_EXTRUDE14_DEPTH)

    # Mirror2: Boss-Extrude14 across plane
    add(boss_extrude14.mirror(Plane.ZY.offset(6.789939627)))

    # Sketch36 → Cut-Extrude19 (cut)
    with BuildSketch(Plane.XZ):
        Polygon((-45.035004515, 18.110646219), (-63.303865733, 22.430112499), (-62.152837271, 15.954516445), align=None)
    cut_extrude19 = extrude(amount=-CUT_EXTRUDE19_DEPTH, mode=Mode.SUBTRACT)

    # Mirror3: Cut-Extrude19 across plane
    add(cut_extrude19.mirror(Plane.ZY.offset(6.789939627)), mode=Mode.SUBTRACT)

    # Boss-Extrude15: up to this face of the body (flat: up to its plane)
    boss_extrude15_end = Plane(part.part.faces().sort_by_distance((-29.595939593, 27.35, 28.225681599))[0])
    # Sketch38 → Boss-Extrude15 (add, up to the picked face)
    with BuildSketch(Plane.ZY.offset(57.989939627), mode=Mode.PRIVATE) as boss_extrude15_sk1:
        Polygon((33.652289683, 23.202285744), (28.702290076, 25.545459561), (28.702290076, 9), align=None)
    boss_extrude15_tool1 = split(extrude(boss_extrude15_sk1.sketch, amount=-BOSS_EXTRUDE15_REACH, mode=Mode.PRIVATE), bisect_by=boss_extrude15_end, keep=Keep.BOTH, mode=Mode.PRIVATE)
    add(boss_extrude15_tool1.solids().sort_by(Axis((-57.98994, 19.249248, 30.35229), (1, 0, 0)))[0])

    # Sketch39 → Boss-Extrude16 (add)
    with BuildSketch(Plane.XY.offset(28.702290076)):
        with Locations((-6.789939627, 9.5)):
            Rectangle(SKETCH39_W, SKETCH39_H)
    extrude(amount=BOSS_EXTRUDE16_DEPTH)

    # Move Face3: read off the stored shape, not the designer's step
    # Move Face3 outline → Move Face3 (add)
    with BuildSketch(Plane.XY.offset(MOVE_START_2)):
        Polygon((44.410060373, 5.163322569), (17.410060373, 5.163322569), (17.410060373, 9), (-57.989939627, 9), (-57.989939627, 0), (44.410060373, 0), align=None)
    extrude(amount=MOVE_FACE3_DEPTH)

    # Move Face4: read off the stored shape, not the designer's step
    # Move Face4 outline → Move Face4 (add)
    with BuildSketch(Plane.YZ.offset(MOVE_START_3)):
        Polygon((23.2, 33.702290076), (19, 33.702290076), (19, 22.451640546), (23.2, 30.799251533), align=None)
    extrude(amount=MOVE_FACE4_DEPTH)

    # Sketch40 → Cut-Extrude21 (cut)
    with SkipClean():  # the faces are left unmerged after this step: merging them gives an invalid solid
        with BuildSketch(Plane(origin=(0, 0, 28.702290076), x_dir=(-1, 0, 0), z_dir=(0, 0, -1)).offset(CUT_EXTRUDE21_START)):
            with Locations(Location((35.789940507, 25.702285731, 0), (0, 0, 185.624954879))):
                Circle(SKETCH40_R)
        extrude(amount=CUT_EXTRUDE21_DEPTH, mode=Mode.SUBTRACT)

    # Sketch41 → Boss-Extrude17 (add)
    with SkipClean():  # the faces are left unmerged after this step: merging them gives an invalid solid
        with BuildSketch(Plane(origin=(44.410060373, 0, 0), x_dir=(0, 0, -1), z_dir=(1, 0, 0))):
            Polygon((-28.61416396, 30), (-22.451640546, 19), (-28.61416396, 22.100599486), align=None)
        boss_extrude17 = extrude(amount=-BOSS_EXTRUDE17_DEPTH)

    # LPattern2: Boss-Extrude17 ×2
    with SkipClean():  # the faces are left unmerged after this step: merging them gives an invalid solid
        with Locations(*[(-i * LPATTERN2_PITCH, 0, 0) for i in range(1, LPATTERN2_COUNT)]):
            add(boss_extrude17)


solid = part.part
